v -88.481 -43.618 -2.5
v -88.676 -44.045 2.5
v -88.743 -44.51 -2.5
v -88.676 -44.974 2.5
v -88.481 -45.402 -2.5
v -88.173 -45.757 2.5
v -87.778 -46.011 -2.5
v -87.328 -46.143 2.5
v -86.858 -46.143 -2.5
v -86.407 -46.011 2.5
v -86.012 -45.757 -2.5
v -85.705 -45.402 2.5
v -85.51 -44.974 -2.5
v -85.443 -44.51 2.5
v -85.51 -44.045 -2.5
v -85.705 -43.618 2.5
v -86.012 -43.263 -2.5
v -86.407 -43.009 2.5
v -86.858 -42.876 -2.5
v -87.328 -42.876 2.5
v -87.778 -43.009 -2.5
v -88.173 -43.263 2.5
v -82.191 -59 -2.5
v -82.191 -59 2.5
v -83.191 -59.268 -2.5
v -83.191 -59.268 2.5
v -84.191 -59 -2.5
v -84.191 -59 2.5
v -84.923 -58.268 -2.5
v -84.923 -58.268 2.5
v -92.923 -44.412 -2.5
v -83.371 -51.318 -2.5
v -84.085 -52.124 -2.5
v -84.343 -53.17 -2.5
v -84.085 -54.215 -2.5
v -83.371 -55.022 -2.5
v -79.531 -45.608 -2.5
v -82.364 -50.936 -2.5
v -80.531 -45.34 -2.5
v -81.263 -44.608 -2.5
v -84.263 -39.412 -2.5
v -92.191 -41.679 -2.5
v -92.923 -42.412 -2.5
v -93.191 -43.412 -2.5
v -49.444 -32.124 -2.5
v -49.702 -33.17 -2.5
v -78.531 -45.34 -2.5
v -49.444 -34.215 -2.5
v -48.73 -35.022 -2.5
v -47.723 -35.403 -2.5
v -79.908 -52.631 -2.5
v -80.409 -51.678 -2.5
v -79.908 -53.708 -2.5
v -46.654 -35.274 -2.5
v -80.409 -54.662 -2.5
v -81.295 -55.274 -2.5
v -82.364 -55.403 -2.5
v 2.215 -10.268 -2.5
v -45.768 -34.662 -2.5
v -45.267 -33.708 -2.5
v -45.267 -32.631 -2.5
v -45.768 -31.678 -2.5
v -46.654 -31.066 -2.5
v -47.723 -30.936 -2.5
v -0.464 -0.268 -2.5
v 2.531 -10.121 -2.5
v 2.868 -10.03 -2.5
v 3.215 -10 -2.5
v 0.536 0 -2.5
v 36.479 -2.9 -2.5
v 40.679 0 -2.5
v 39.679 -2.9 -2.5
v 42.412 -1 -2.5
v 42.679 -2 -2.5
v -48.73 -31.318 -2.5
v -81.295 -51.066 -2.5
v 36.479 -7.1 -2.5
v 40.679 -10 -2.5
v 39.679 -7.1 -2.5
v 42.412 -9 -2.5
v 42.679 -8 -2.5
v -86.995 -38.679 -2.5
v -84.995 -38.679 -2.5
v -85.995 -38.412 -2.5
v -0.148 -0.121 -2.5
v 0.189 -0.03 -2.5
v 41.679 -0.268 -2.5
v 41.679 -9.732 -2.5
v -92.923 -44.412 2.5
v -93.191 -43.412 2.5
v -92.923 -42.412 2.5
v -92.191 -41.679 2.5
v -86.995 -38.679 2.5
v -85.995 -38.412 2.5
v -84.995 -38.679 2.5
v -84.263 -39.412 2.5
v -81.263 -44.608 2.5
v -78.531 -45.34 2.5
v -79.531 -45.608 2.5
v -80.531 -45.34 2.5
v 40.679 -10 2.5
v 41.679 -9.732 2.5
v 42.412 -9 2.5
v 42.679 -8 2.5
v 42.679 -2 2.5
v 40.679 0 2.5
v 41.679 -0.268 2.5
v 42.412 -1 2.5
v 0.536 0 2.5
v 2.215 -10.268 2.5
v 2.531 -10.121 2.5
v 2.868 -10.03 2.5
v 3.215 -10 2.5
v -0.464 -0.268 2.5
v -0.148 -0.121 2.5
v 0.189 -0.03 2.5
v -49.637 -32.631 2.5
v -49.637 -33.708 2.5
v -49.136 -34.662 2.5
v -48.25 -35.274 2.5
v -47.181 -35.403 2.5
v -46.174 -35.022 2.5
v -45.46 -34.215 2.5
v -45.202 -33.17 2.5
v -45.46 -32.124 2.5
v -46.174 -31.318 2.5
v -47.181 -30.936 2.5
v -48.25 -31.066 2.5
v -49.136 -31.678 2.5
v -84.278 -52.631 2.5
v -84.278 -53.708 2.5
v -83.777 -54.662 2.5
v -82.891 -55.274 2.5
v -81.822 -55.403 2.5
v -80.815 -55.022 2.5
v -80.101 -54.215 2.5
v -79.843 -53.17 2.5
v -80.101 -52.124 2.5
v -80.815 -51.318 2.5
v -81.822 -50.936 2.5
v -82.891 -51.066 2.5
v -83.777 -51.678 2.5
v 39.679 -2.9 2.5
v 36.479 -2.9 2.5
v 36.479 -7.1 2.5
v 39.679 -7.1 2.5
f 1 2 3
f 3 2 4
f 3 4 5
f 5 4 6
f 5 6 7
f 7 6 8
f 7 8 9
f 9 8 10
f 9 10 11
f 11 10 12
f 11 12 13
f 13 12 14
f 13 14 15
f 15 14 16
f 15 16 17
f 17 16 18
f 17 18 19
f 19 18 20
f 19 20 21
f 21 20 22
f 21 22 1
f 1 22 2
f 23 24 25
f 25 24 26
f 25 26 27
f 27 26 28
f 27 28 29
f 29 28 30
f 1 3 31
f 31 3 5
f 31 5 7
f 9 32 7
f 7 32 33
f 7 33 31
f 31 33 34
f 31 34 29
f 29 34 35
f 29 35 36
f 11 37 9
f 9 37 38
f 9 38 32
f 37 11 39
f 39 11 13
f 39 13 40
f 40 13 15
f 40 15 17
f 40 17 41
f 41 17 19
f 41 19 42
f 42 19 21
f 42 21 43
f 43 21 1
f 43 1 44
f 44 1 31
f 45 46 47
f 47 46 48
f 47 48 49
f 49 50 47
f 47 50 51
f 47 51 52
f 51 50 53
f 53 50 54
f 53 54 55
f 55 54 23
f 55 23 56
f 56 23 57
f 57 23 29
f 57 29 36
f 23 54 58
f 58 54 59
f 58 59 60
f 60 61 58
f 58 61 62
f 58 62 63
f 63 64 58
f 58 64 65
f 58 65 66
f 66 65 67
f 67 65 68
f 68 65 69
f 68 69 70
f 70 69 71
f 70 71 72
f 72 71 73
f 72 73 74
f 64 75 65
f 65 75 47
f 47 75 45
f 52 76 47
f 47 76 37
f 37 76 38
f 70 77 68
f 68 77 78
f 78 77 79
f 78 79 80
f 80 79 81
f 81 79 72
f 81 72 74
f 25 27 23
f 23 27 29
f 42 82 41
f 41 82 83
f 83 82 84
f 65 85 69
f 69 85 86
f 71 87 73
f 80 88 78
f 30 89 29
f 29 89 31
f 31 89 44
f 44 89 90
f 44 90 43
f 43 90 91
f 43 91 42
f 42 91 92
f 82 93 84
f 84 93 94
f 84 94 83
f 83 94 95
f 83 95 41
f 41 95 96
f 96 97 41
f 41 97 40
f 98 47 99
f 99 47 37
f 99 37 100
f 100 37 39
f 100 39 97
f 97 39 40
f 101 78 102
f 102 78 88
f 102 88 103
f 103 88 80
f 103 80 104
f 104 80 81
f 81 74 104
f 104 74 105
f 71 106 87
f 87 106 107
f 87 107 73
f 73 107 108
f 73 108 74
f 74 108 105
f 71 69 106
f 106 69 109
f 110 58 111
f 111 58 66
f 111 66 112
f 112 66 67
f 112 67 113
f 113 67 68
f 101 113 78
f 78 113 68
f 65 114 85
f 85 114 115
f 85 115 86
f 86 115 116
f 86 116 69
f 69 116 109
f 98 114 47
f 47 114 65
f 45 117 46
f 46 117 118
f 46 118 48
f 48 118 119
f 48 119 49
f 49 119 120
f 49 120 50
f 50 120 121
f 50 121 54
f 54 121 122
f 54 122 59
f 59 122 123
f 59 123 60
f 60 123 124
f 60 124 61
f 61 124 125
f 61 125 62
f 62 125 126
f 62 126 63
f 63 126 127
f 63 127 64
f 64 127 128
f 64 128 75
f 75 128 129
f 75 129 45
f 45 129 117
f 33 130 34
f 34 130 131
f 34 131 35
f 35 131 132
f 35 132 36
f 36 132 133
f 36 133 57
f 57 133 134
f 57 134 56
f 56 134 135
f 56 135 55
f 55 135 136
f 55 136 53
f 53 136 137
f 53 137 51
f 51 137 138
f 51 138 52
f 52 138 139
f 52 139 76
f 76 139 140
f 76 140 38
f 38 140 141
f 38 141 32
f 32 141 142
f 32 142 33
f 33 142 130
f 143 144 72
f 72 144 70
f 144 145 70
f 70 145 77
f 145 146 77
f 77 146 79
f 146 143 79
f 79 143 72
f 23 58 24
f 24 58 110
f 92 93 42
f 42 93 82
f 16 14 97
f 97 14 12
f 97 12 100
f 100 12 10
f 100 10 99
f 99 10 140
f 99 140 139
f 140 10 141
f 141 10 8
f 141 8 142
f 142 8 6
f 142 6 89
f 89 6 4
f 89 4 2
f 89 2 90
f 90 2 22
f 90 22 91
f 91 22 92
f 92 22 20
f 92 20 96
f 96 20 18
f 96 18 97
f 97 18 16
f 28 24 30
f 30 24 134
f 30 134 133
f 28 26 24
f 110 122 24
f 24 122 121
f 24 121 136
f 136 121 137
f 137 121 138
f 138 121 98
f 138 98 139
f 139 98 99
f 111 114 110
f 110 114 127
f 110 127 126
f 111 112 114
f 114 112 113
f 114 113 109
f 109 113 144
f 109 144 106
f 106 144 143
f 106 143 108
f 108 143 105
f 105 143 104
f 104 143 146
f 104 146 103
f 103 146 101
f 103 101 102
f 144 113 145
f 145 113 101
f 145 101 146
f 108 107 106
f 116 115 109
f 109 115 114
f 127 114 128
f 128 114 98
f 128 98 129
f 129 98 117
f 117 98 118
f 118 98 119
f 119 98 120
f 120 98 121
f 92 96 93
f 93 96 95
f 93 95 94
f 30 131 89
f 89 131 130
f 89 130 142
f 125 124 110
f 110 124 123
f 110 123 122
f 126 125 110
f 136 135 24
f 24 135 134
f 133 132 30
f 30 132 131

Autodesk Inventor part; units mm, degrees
ref_plane "YZ Plane" through (0, 0, 0) normal (1, 0, 0) x (0, 1, 0)
ref_plane "XZ Plane" through (0, 0, 0) normal (0, 1, 0) x (-1, 0, 0)
ref_plane "XY Plane" through (0, 0, 0) normal (0, 0, 1) x (1, 0, 0)
sketch "スケッチ1" plane through (0, 0, 0) normal (0, 0, 1) x (1, 0, 0)
  line L0 (0, 0) -> (42.6795, 0)
  line L1 (2.6795, -10) -> (42.6795, -10)
  line L2 (42.6795, 0) -> (42.6795, -10)
  line L3 (2.6795, -10) -> (-83.923, -60)
  line L4 (-80.2628, -46.3397) -> (0, 0)
  line L5 (-83.923, -60) -> (-93.923, -42.6795)
  line L6 (-93.923, -42.6795) -> (-85.2628, -37.6795)
  line L7 (-85.2628, -37.6795) -> (-80.2628, -46.3397)
  point P0 (-88.923, -51.3397)
  dimension "d1" = 40
  dimension "d2" = 10
  dimension "d3" = 100
  dimension "d4" = 150
  dimension "d5" = 10
  dimension "d6" = 20
  dimension "d7" = 10
  dimension "d8" = 10
  dimension "d9" = 10
extrude "押し出し1" add sketch "スケッチ1" along normal mid plane 5
sketch "スケッチ2" plane through (0, 0, 2.5) normal (0, 0, 1) x (1, 0, 0)
  line L0 (36.4795, -7.1) -> (39.6795, -7.1)
  line L1 (39.6795, -7.1) -> (39.6795, -2.9)
  line L2 (39.6795, -2.9) -> (36.4795, -2.9)
  line L3 (36.4795, -2.9) -> (36.4795, -7.1)
  line L4 (36.4795, -7.1) -> (39.6795, -2.9) construction
  line L5 (39.6795, -7.1) -> (36.4795, -2.9) construction
  line L6 (42.6795, 0) -> (0, 0) projected
  line L7 (2.6795, -10) -> (42.6795, -10) projected
  line L8 (42.6795, -10) -> (42.6795, 0) projected
  point P0 (38.0795, -5)
  dimension "d14" = 3
  dimension "d15" = 3.2
  dimension "d41" = 4.2
  dimension "d42" = 2.9
extrude "押し出し2" cut sketch "スケッチ2" against normal blind 5
sketch "スケッチ3" plane through (0, 0, 2.5) normal (0, 0, 1) x (1, 0, 0)
  line L0 (-83.923, -60) -> (2.6795, -10) projected
  line L1 (-85.2628, -37.6795) -> (-93.923, -42.6795) projected
  line L2 (-80.2628, -46.3397) -> (-85.2628, -37.6795) projected
  line L3 (-93.923, -42.6795) -> (-83.923, -60) projected
  point P0 (0, 0)
  point P1 (-87.0929, -44.5096)
  point P2 (-82.0929, -53.1699)
  point P3 (-47.4519, -33.1699)
  dimension "d18" = 5
  dimension "d19" = 5
  dimension "d20" = 5
  dimension "d21" = 5
  dimension "d22" = 5
  dimension "d23" = 40
hole "穴1" at (-82.0929, -53.1699, 2.5) at (-47.4519, -33.1699, 2.5) direction (0, 0, -1) diameter 4.5 end through all
fillet "フィレット1" radius 2 8 edges at (0, 0, 0) (2.6795, -10, 0) (42.6795, 0, 0) (42.6795, -10, 0) (-80.2628, -46.3397, 0) (-85.2628, -37.6795, 0) (-93.923, -42.6795, 0) (-83.923, -60, 0)
sketch "スケッチ4" plane through (0, 0, 2.5) normal (0, 0, 1) x (1, 0, 0)
  arc A0 (-84.923, -58.2679) -> (-82.191, -59) centre (-83.191, -57.2679) ccw projected
  line L0 (-82.191, -59) -> (2.2154, -10.2679) projected
  arc A1 (3.2154, -10) -> (2.2154, -10.2679) centre (3.2154, -12) ccw projected
  line L1 (3.2154, -10) -> (40.6795, -10) projected
  arc A2 (40.6795, -10) -> (42.6795, -8) centre (40.6795, -8) ccw projected
  line L2 (42.6795, -8) -> (42.6795, -2) projected
  arc A3 (42.6795, -2) -> (40.6795, 0) centre (40.6795, -2) ccw projected
  line L3 (40.6795, 0) -> (0.5359, 0) projected
  arc A4 (0.5359, 0) -> (-0.4641, -0.2679) centre (0.5359, -2) ccw projected
  line L4 (-0.4641, -0.2679) -> (-78.5307, -45.3397) projected
  arc A5 (-81.2628, -44.6077) -> (-78.5307, -45.3397) centre (-79.5307, -43.6077) ccw projected
  line L5 (-81.2628, -44.6077) -> (-84.2628, -39.4115) projected
  arc A6 (-84.2628, -39.4115) -> (-86.9948, -38.6795) centre (-85.9948, -40.4115) ccw projected
  line L6 (-86.9948, -38.6795) -> (-92.191, -41.6795) projected
  arc A7 (-92.191, -41.6795) -> (-92.923, -44.4115) centre (-91.191, -43.4115) ccw projected
  line L7 (-92.923, -44.4115) -> (-84.923, -58.2679) projected
  circle A8 centre (-47.4519, -33.1699) radius 2.25 projected
  circle A9 centre (-82.0929, -53.1699) radius 2.25 projected
  line L8 (36.4795, -2.9) -> (39.6795, -2.9) projected
  line L9 (39.6795, -2.9) -> (39.6795, -7.1) projected
  line L10 (39.6795, -7.1) -> (36.4795, -7.1) projected
  line L11 (36.4795, -7.1) -> (36.4795, -2.9) projected
  point P0 (0, 0)
  point P1 (-87.0929, -44.5096)
  dimension "d32" = 5
  dimension "d33" = 5
hole "穴2" at (-87.0929, -44.5096, 2.5) direction (0, 0, -1) diameter 3.3 end through all
equation "\"d19\" = d18"
equation "\"d20\" = d18"
equation "\"d21\" = d18"
equation "\"d22\" = d18"
properties part number "刃固定パーツ"
